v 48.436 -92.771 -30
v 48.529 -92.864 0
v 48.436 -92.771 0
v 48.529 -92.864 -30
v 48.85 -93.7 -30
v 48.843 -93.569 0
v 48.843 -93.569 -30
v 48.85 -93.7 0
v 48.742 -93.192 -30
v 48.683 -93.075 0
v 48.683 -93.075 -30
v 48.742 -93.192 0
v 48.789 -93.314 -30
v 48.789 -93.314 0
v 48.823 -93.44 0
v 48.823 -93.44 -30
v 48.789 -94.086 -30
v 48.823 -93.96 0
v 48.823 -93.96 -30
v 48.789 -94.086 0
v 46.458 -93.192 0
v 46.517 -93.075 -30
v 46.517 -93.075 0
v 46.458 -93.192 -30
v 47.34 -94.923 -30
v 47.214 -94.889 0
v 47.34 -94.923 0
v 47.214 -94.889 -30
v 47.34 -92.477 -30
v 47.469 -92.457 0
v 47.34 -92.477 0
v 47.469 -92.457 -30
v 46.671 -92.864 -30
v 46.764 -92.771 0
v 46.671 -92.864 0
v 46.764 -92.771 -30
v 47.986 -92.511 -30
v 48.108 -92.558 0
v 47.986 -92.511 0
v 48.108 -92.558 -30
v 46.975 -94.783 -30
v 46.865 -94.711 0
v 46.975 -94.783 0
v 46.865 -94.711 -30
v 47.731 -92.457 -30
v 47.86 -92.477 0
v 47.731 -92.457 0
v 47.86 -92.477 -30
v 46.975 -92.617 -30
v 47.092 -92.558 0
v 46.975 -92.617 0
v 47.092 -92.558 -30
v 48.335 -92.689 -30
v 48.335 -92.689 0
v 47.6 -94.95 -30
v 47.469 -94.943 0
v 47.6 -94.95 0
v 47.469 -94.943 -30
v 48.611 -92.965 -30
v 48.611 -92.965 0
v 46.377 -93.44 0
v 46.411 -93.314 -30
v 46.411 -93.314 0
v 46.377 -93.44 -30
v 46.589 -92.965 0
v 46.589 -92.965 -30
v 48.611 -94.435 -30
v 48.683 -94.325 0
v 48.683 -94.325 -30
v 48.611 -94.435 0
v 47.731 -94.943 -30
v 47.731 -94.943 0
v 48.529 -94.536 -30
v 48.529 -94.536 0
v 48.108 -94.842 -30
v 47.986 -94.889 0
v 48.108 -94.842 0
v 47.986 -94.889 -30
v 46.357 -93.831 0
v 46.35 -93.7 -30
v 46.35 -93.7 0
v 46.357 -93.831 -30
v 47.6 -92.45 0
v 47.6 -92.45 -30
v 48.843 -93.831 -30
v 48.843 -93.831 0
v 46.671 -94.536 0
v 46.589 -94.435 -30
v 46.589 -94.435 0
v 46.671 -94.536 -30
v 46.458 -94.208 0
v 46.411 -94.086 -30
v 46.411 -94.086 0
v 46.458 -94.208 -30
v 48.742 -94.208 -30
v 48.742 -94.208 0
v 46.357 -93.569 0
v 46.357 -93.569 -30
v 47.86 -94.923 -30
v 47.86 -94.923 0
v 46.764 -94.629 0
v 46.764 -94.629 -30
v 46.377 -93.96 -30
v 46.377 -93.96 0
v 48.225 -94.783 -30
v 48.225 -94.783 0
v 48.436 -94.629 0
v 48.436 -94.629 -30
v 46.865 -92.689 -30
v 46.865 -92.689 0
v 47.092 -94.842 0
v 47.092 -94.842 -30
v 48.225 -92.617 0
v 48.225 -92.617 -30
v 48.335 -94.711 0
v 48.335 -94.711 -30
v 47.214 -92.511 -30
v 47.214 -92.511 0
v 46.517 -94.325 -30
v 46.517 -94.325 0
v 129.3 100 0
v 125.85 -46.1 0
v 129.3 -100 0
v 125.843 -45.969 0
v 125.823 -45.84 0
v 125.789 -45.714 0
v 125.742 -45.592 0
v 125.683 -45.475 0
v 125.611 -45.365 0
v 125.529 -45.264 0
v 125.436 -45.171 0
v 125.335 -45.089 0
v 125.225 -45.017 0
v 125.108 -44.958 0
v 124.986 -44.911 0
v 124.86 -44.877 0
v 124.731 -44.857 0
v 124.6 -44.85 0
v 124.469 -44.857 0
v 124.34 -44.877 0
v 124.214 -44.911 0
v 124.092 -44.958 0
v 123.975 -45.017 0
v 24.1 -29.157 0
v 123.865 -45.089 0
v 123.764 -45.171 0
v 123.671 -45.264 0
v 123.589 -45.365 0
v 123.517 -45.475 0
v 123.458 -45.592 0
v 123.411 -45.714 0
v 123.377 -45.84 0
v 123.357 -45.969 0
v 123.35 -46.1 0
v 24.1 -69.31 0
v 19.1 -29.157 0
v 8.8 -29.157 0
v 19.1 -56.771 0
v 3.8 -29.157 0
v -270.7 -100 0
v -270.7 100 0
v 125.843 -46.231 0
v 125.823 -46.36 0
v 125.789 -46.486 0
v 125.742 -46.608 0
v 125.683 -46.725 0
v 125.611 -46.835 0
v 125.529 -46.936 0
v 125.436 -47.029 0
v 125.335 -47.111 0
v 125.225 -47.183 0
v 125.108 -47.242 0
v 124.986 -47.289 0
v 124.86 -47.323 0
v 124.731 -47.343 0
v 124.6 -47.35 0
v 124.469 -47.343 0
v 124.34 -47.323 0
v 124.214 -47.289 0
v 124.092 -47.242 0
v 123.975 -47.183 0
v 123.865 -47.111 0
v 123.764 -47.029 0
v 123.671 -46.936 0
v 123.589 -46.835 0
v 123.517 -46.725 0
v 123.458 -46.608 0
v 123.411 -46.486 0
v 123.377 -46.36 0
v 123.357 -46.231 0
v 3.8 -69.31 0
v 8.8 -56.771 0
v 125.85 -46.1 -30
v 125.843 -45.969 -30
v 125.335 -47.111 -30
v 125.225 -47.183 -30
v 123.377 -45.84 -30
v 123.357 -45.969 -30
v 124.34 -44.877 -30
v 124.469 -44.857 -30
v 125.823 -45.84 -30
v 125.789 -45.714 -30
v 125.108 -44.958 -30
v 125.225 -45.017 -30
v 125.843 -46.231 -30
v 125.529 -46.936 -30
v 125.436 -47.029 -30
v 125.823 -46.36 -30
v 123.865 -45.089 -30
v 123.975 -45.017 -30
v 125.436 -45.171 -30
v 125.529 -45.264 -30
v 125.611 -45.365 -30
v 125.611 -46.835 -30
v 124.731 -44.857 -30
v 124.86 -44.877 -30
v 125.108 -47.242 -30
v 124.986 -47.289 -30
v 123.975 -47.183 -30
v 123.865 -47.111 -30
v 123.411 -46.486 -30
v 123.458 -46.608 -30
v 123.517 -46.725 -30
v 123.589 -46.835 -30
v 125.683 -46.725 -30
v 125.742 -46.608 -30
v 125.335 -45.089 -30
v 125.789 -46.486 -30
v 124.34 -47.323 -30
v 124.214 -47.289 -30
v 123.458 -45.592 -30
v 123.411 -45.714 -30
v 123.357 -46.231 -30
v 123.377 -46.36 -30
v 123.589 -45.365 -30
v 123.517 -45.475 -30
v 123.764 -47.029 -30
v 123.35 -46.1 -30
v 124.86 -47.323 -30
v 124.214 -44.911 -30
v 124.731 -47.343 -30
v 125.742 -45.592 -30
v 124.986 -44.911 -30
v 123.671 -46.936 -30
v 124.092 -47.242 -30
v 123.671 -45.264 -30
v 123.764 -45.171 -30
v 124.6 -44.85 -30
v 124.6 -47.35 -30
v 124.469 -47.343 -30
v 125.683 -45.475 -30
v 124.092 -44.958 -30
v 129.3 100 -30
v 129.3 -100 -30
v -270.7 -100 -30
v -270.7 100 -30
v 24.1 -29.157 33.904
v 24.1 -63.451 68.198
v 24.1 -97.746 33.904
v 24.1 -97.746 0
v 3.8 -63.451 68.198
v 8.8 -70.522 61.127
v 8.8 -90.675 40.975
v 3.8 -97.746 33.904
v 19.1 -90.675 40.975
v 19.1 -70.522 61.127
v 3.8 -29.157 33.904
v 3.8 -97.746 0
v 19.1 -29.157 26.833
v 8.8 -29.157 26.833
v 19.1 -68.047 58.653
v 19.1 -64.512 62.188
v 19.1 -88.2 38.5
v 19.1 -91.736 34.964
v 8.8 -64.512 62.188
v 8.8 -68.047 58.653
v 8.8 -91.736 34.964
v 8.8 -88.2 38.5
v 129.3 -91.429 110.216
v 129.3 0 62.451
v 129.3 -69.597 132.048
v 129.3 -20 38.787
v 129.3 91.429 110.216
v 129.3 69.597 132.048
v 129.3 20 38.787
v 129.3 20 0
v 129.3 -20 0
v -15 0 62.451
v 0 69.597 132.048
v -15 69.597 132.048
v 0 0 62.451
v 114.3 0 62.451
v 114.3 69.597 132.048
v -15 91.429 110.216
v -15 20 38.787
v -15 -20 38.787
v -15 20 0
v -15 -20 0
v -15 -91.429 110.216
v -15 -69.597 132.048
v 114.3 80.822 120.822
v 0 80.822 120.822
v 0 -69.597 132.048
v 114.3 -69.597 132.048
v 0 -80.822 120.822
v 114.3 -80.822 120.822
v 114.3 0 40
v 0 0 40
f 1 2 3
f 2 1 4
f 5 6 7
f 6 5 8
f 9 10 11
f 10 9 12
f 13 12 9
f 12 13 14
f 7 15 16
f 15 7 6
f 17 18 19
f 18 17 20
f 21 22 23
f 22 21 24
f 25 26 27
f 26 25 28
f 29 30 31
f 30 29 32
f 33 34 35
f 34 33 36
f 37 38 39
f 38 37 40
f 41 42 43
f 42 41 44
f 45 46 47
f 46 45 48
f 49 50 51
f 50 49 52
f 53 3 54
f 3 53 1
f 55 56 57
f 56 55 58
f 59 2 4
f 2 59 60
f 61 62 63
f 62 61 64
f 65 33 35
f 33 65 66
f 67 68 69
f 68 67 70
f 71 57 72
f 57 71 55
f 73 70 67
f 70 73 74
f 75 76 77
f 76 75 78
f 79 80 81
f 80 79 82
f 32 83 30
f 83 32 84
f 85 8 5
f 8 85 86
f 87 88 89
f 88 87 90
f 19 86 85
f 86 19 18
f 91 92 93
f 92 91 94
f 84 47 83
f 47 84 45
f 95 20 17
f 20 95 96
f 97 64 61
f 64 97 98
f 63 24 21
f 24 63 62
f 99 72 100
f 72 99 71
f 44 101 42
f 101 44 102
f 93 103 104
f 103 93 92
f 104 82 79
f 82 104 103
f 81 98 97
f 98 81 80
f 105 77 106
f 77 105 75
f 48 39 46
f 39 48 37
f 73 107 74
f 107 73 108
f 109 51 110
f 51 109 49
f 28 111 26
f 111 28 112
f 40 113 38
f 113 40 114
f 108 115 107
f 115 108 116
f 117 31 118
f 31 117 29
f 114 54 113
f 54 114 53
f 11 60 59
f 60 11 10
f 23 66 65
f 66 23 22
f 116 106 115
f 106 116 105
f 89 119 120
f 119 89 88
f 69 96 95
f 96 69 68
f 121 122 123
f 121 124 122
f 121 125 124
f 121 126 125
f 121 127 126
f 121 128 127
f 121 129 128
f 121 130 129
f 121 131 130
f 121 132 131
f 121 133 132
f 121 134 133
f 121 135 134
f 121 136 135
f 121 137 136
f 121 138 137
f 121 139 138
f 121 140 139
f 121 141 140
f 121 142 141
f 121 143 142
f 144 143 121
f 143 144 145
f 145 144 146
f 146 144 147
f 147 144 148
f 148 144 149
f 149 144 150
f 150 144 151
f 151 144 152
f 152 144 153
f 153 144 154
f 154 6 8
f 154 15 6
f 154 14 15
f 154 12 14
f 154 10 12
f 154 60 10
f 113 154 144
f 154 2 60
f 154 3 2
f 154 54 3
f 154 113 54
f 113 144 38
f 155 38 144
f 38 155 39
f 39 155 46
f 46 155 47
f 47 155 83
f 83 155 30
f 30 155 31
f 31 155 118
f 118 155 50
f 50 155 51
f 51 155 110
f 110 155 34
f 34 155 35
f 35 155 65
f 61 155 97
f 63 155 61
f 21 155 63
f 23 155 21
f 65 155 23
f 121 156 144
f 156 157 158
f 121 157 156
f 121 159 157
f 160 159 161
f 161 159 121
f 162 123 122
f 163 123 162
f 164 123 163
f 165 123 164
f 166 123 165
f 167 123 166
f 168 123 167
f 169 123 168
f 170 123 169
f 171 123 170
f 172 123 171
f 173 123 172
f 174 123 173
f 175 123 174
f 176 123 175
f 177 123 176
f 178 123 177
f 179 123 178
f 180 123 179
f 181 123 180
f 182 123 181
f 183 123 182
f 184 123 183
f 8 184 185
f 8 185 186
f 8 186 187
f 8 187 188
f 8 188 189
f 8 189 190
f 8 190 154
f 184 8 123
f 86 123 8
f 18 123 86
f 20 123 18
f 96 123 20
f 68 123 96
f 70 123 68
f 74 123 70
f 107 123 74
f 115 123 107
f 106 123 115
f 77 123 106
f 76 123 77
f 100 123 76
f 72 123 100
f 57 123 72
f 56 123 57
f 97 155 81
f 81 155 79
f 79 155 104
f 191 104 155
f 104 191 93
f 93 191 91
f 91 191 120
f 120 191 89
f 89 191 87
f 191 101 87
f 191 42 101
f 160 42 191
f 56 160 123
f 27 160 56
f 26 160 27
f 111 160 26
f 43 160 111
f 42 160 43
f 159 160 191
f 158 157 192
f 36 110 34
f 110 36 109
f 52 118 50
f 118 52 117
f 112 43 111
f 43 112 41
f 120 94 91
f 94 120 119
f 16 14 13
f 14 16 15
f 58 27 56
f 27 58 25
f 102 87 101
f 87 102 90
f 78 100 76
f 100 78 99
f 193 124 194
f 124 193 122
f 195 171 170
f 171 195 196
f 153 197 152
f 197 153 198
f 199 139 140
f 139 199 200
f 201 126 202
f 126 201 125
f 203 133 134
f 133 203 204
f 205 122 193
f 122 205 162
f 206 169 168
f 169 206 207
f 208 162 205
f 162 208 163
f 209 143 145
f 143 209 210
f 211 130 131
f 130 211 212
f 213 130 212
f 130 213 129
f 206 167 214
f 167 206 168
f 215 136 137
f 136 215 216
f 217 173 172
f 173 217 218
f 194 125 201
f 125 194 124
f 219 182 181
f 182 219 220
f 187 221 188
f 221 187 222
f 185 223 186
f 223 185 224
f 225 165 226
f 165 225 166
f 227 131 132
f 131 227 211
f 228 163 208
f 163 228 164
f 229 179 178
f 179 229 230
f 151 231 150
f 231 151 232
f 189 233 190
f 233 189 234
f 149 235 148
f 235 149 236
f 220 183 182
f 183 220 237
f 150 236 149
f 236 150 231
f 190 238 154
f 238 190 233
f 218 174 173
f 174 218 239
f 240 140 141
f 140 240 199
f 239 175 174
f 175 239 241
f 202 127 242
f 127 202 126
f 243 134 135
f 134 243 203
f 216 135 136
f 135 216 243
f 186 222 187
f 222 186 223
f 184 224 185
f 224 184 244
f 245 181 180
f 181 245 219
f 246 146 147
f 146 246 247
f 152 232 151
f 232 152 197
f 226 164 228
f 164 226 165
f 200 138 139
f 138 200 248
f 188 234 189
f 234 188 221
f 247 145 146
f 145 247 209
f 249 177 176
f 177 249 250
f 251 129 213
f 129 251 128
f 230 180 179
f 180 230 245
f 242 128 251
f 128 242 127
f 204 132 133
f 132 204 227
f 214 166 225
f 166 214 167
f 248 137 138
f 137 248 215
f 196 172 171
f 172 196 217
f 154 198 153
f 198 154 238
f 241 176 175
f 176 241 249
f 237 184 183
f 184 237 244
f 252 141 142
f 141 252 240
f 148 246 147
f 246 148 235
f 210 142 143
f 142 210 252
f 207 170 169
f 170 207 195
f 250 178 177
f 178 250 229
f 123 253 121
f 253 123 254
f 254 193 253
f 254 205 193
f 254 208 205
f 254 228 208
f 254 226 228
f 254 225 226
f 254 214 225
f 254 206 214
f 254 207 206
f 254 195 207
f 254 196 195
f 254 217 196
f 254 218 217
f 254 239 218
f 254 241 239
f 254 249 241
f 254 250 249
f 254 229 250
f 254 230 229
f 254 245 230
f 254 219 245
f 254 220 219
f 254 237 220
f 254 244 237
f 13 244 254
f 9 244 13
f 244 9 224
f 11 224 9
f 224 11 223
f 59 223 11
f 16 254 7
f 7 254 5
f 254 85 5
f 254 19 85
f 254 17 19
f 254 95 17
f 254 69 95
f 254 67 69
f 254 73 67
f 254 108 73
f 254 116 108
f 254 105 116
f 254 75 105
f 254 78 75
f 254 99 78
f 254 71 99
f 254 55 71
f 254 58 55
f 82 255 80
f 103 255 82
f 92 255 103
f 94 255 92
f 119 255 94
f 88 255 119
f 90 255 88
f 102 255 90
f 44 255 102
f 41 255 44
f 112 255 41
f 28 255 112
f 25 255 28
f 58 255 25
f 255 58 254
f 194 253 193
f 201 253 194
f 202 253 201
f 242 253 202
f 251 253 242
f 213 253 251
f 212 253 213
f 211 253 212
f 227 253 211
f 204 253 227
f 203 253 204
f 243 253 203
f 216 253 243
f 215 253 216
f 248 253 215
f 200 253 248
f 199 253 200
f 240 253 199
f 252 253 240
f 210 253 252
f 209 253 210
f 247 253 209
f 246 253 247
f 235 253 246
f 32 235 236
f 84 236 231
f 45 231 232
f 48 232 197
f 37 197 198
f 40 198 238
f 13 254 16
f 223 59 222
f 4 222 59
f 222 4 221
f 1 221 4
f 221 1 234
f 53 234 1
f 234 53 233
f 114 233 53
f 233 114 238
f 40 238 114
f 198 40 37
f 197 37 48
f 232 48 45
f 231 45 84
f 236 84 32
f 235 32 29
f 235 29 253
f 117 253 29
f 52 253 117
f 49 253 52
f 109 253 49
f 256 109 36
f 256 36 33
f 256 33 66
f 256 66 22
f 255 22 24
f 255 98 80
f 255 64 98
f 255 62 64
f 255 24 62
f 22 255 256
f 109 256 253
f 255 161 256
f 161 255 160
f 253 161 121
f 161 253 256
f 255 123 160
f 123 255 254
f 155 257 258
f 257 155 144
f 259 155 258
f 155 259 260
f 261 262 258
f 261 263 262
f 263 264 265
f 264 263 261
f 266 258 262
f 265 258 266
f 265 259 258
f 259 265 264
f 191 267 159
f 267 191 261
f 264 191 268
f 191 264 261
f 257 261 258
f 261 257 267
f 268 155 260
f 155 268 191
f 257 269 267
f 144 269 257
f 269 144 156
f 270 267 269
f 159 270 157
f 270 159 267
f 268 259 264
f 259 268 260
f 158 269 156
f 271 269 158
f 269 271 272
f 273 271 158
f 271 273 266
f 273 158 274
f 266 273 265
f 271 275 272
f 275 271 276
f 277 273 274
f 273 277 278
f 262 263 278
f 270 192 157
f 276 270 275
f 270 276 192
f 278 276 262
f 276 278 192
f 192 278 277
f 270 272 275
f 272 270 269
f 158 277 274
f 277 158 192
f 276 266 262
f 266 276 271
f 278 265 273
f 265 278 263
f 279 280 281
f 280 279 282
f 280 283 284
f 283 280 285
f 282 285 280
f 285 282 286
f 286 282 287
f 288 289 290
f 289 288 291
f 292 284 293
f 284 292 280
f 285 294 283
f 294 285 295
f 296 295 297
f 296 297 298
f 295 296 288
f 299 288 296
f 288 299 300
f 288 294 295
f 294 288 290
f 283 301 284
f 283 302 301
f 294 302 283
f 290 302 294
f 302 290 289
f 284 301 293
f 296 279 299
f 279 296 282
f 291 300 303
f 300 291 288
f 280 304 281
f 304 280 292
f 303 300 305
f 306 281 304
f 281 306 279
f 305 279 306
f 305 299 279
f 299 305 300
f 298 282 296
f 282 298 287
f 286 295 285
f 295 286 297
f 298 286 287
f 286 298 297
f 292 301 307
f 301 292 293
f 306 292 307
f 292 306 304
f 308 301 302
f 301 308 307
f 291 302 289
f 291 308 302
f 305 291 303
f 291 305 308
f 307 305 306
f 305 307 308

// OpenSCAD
/**
Run get_deps.sh to clone dependencies into a linked folder in your home directory.
*/

use <deps.link/BOSL/nema_steppers.scad>
use <deps.link/BOSL/joiners.scad>
use <deps.link/BOSL/shapes.scad>
use <deps.link/erhannisScad/misc.scad>
use <deps.link/erhannisScad/auto_lid.scad>
use <deps.link/scadFluidics/common.scad>
use <deps.link/quickfitPlate/blank_plate.scad>
use <deps.link/getriebe/Getriebe.scad>
use <deps.link/gearbox/gearbox.scad>

$FOREVER = 1000;
DUMMY = false;
$fn = DUMMY ? 10 : 60;

INCH = 25.4;

BRICK_SX = 4.5*INCH;
BRICK_SY = 9*INCH;
BRICK_SZ = 1.25*INCH;

SWITCH_S_WIDTH = 10.3;
SWITCH_S_TALL = 28.5;
SWITCH_S_DEEP = 3.5;

DIMMER_SX = 85.2;
DIMMER_SY = 58.2;
DIMMER_SZ = 38;
DIMMER_HOLE_DX = 77;
DIMMER_HOLE_DY = 47.6;
DIMMER_HOLE_INSET_X = 3.5;
DIMMER_HOLE_INSET_Y = 4.5;
DIMMER_HOLE_D_OUTER = 3.2;
DIMMER_HOLE_D = 2.5;

HOLDER_T = 15;

HOLDER_STEM_T = 40;
HOLDER_STEM_L = 40;

// Ooh, I might have to bust out my treadmill printer for this.  I guess you could split the base into the holder and the rotator.
// You could also like, add holes that run lengthwise, and jam dowels down them to attach multiple segments.
BASE_SX = 400;
BASE_SY = 200;
BASE_SZ = 30;

SWITCH_MARGIN = 25;
SWITCH_SETBACK = 10;
SWITCH_HOUSING_T = 5;
SWITCH_LATCH_LEEWAY = 5;
SWITCH_ELEVATION = SWITCH_S_TALL+10;

// Currently abt 162mm tall
//translate([0,0,BASE_SZ])
difference() {
union() {

/*
Todo:
Cable tie-down holes
Switch mount
Rotation mechanism
  Slide up/down
  Slide forward/backward
  Flag for bearing OR just a hole
*/

// Base
difference() {
  union() {
    translate([BRICK_SX+HOLDER_T-BASE_SX/2,0,-BASE_SZ/2]) cube([BASE_SX, BASE_SY, BASE_SZ], center=true);
  }
  
  // Dimmer holes
  translate([BRICK_SX+HOLDER_T-DIMMER_SX,-DIMMER_SY-HOLDER_STEM_T,0]) // Dimmer corner
  translate([DIMMER_HOLE_INSET_X, DIMMER_HOLE_INSET_Y, 0]) // Holes inset
  for (p = [[0,0,0],[DIMMER_HOLE_DX,DIMMER_HOLE_DY,0]]) {
    mz() translate(p) cylinder(d=DIMMER_HOLE_D,h=$FOREVER);
  }
}

// Dimmer (do not print)
if ($preview) {
  color("RED") translate([BRICK_SX+HOLDER_T-DIMMER_SX,-DIMMER_SY-HOLDER_STEM_T,0]) cube([DIMMER_SX,DIMMER_SY,DIMMER_SZ]);
}

// Switch (do not print)
if ($preview) {
  color("RED")
  translate([0,SWITCH_SETBACK,SWITCH_ELEVATION])
  translate([BRICK_SX+HOLDER_T-DIMMER_SX-SWITCH_S_WIDTH-SWITCH_MARGIN,-DIMMER_SY-HOLDER_STEM_T,0])
  rx(45)
  cube([SWITCH_S_WIDTH,SWITCH_S_TALL,SWITCH_S_DEEP]);
}

HOUSING_SZ = SWITCH_S_TALL+2*SWITCH_LATCH_LEEWAY+2*SWITCH_HOUSING_T;

// Switch holder
// I'm probably going to regret making this symmetrical at the cost of easy access
translate([0,SWITCH_SETBACK,SWITCH_ELEVATION])
  translate([BRICK_SX+HOLDER_T-DIMMER_SX-SWITCH_S_WIDTH-SWITCH_MARGIN,-DIMMER_SY-HOLDER_STEM_T,0])
  rx(45)
  difference() {
  union() {
    translate([-SWITCH_HOUSING_T,-SWITCH_HOUSING_T-SWITCH_LATCH_LEEWAY,-HOUSING_SZ+SWITCH_S_DEEP])
      cube([SWITCH_S_WIDTH+2*SWITCH_HOUSING_T, HOUSING_SZ, HOUSING_SZ]);
    SWITCH_CENTER_Z = frotate([45,0,0],[0,-(HOUSING_SZ-SWITCH_S_TALL)/2,SWITCH_S_DEEP])[2]+SWITCH_ELEVATION;
    translate([0,-(HOUSING_SZ-SWITCH_S_TALL)/2,SWITCH_S_DEEP])
      rx(-45)
      tz(-SWITCH_CENTER_Z)
      tx(-SWITCH_HOUSING_T) cube([SWITCH_S_WIDTH+2*SWITCH_HOUSING_T, HOUSING_SZ*sqrt(2),SWITCH_CENTER_Z]);
  }
  ty(-SWITCH_LATCH_LEEWAY) tz(-$FOREVER) cube([SWITCH_S_WIDTH, SWITCH_S_TALL+2*SWITCH_LATCH_LEEWAY, $FOREVER]);
  tz(-$FOREVER/2) cube([SWITCH_S_WIDTH, SWITCH_S_TALL, $FOREVER]);
}

// Brick holder
tz(HOLDER_STEM_L) rx(45)
difference() {
  union() {
    cmirror([0,-1,1]) translate([-HOLDER_T, -HOLDER_T, -HOLDER_T]) cube([BRICK_SX+2*HOLDER_T, BRICK_SY/2+HOLDER_T, HOLDER_T+BRICK_SZ/2]);
    rx(45) translate([-HOLDER_T, -HOLDER_STEM_L, -HOLDER_STEM_T/2]) cube([BRICK_SX+2*HOLDER_T, HOLDER_STEM_L, HOLDER_STEM_T]);
  }
  cube([BRICK_SX, $FOREVER, $FOREVER]);
}

}
//OXm([15,0,0]);
}
